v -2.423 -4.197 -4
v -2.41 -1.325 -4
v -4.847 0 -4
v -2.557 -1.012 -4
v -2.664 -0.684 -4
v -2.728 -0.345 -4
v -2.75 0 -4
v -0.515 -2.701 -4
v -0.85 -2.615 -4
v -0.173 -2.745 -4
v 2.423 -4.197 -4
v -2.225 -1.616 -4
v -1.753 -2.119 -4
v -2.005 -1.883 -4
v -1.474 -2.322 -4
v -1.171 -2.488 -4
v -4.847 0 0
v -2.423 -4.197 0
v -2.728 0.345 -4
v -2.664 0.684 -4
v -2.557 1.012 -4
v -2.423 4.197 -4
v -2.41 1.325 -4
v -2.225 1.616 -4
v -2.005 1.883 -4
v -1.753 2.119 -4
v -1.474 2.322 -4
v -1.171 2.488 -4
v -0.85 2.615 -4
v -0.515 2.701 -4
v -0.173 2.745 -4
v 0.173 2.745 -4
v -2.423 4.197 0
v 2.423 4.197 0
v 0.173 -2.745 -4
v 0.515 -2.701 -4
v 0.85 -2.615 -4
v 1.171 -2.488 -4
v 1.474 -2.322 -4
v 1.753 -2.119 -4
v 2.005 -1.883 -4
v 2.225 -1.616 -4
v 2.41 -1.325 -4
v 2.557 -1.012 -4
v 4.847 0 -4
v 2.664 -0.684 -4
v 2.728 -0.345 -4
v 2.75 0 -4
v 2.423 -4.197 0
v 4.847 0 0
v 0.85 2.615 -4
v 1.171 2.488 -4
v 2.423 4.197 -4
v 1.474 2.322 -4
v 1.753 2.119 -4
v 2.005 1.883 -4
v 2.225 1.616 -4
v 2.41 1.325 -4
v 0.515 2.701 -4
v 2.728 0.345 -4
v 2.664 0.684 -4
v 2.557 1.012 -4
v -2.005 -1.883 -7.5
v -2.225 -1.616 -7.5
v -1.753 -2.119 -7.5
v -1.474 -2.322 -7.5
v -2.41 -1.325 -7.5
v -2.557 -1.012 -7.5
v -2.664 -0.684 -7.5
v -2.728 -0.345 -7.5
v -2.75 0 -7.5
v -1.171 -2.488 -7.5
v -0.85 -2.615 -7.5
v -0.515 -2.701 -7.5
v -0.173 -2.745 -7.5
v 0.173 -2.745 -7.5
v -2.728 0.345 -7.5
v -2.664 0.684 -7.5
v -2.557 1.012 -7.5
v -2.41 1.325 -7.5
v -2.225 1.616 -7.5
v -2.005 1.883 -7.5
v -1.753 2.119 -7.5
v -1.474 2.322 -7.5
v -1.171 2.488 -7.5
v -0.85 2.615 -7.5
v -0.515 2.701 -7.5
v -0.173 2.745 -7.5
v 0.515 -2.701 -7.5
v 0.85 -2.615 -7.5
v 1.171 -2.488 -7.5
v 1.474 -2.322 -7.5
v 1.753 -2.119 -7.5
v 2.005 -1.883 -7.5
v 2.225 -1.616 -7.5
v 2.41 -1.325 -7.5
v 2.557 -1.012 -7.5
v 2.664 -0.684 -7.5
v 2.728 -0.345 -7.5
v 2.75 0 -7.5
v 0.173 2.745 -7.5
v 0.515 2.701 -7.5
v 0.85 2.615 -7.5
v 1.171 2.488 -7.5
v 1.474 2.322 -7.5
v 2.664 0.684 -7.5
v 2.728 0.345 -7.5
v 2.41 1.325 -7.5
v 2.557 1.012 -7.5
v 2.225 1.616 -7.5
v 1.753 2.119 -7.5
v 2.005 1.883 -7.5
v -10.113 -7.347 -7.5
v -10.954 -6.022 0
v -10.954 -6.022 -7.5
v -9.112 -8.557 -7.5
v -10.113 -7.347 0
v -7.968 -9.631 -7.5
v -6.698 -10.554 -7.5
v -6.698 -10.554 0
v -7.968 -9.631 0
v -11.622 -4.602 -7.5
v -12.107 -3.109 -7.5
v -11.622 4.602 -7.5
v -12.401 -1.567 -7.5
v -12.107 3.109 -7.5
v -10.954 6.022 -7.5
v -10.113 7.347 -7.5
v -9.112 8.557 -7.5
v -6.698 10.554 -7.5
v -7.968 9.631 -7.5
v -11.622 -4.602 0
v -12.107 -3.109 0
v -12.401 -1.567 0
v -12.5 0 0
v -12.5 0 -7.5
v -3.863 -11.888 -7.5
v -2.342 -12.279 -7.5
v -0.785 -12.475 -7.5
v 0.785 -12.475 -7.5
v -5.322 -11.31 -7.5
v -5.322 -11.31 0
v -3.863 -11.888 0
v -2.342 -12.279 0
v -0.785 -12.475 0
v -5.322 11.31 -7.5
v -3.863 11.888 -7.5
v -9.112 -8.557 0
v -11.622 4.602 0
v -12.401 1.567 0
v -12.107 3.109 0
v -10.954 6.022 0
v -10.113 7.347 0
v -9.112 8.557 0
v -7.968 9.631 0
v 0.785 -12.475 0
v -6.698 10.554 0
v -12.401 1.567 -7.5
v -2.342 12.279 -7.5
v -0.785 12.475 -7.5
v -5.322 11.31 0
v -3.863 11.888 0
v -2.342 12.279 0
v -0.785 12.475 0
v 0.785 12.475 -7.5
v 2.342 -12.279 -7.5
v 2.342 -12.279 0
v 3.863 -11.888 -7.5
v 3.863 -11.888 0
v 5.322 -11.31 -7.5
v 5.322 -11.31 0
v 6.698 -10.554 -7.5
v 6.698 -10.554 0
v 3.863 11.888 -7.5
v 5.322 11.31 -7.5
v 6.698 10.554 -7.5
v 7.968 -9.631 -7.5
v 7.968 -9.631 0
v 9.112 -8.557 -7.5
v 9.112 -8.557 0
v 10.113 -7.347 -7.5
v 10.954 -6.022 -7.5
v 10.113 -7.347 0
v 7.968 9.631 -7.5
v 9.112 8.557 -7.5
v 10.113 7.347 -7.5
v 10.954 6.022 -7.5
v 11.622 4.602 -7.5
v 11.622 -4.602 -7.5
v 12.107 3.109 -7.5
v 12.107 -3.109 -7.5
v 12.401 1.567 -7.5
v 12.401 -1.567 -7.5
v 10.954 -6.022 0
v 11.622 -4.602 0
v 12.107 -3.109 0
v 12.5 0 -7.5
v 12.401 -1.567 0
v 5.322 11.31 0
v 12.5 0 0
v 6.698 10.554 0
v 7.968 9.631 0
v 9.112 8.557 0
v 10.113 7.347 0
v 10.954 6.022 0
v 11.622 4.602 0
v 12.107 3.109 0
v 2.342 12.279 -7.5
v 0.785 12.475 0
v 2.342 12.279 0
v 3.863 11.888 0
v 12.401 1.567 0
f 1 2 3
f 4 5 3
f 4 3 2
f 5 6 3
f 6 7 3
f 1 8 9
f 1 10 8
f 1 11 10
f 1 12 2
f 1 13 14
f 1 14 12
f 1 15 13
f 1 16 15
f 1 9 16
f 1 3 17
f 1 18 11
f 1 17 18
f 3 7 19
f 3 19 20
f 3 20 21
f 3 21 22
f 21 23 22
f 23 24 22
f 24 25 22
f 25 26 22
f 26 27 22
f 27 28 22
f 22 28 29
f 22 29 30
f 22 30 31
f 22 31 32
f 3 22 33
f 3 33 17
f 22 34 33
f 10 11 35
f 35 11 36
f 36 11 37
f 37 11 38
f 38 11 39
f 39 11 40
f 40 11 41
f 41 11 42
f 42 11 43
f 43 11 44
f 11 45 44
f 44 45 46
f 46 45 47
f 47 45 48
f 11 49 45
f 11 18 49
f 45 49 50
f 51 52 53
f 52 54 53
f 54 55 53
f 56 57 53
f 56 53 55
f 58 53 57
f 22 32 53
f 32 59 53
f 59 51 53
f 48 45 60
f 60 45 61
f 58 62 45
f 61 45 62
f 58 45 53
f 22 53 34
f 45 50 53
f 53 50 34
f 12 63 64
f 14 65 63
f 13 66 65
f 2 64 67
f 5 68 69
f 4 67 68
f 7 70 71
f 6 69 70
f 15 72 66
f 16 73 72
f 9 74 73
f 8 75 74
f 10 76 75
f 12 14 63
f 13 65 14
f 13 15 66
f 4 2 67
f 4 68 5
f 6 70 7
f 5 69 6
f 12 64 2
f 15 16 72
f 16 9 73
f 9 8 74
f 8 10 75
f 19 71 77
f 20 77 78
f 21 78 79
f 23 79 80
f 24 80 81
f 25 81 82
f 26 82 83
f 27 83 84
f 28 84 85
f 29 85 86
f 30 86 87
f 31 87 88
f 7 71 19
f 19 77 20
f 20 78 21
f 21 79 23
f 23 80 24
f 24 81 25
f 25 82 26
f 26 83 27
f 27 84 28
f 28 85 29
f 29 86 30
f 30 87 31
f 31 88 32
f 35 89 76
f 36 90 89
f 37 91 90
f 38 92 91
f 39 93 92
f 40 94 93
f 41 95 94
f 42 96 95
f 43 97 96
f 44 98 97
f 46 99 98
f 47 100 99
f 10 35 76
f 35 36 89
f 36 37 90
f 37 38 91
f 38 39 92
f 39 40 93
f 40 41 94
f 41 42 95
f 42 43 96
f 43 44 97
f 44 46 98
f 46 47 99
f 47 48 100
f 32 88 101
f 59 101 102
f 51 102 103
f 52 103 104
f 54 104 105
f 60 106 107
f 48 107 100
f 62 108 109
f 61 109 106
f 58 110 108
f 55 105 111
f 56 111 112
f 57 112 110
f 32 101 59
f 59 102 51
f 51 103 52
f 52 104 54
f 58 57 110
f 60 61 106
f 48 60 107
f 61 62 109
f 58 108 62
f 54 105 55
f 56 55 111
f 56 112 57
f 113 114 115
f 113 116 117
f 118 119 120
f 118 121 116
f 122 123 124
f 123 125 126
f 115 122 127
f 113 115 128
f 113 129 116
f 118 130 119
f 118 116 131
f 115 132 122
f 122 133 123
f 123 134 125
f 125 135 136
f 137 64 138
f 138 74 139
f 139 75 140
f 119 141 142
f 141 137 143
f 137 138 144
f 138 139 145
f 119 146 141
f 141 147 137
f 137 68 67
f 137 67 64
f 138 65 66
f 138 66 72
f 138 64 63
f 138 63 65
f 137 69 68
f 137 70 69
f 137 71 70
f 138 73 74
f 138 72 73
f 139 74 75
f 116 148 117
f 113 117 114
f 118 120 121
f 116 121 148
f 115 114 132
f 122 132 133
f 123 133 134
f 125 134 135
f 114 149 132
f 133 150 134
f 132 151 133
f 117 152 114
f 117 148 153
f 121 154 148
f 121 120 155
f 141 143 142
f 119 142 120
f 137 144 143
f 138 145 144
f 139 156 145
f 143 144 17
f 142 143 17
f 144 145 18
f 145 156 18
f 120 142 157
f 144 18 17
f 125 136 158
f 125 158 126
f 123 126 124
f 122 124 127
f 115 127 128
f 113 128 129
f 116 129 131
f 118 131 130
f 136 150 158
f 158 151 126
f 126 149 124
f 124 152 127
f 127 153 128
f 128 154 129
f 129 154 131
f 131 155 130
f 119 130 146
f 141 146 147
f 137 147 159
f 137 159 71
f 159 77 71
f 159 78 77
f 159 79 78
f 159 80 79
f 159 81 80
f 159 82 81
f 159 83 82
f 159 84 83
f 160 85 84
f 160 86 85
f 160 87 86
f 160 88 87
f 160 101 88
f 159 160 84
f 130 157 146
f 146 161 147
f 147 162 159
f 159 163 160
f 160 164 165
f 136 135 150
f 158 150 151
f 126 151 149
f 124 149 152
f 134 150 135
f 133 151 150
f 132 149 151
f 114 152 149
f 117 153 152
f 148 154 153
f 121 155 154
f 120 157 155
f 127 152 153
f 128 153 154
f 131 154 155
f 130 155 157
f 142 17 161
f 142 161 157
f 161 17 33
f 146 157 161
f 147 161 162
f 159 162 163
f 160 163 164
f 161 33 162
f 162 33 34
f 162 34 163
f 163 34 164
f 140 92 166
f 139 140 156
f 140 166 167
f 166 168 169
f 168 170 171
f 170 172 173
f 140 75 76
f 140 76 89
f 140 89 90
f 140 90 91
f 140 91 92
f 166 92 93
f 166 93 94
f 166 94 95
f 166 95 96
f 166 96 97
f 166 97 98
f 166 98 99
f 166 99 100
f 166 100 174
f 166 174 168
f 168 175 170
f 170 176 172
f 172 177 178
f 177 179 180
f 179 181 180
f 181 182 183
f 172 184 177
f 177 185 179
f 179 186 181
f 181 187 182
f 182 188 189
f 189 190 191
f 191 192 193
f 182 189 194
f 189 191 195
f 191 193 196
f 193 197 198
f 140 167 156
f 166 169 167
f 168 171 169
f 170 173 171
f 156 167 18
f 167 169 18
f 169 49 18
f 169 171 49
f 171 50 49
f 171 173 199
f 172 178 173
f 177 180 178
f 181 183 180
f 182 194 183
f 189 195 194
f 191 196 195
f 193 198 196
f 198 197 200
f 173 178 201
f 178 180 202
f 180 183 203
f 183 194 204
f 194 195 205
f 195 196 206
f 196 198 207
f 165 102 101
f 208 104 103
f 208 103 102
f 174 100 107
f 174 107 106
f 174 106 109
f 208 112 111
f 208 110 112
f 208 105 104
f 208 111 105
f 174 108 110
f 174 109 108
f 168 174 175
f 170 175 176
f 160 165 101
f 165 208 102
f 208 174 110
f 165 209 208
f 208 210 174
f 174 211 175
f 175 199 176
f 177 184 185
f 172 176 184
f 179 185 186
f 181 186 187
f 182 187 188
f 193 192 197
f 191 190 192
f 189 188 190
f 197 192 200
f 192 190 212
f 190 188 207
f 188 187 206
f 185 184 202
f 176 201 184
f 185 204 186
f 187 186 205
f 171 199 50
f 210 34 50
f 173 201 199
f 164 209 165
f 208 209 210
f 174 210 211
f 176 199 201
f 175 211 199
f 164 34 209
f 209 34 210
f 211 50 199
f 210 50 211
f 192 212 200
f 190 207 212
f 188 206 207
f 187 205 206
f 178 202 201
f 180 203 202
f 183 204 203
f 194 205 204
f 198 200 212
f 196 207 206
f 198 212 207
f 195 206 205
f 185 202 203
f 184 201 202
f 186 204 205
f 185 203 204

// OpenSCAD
$fn = 50;

difference() {
	union() {
		translate(v = [0, 0, -7.5]) {
			cylinder(h = 7.5, r = 12.5);
		}
	}
	union() {
		translate(v = [0, 0, 0]) {
			rotate(a = [0, 0, 0]) {
				difference() {
					union() {
						translate(v = [0, 0, -4]) {
							linear_extrude(height = 4) {
								polygon(points = [[4.8468, 0.0], [2.4234000000000004, 4.197451927062417], [-2.423399999999999, 4.197451927062417], [-4.8468, 5.935618106107392e-16], [-2.423400000000002, -4.197451927062416], [2.423399999999997, -4.197451927062419]]);
							}
						}
					}
					union();
				}
			}
		}
		#translate(v = [0, 0, -100.0]) {
			cylinder(h = 200, r = 2.75);
		}
	}
}
